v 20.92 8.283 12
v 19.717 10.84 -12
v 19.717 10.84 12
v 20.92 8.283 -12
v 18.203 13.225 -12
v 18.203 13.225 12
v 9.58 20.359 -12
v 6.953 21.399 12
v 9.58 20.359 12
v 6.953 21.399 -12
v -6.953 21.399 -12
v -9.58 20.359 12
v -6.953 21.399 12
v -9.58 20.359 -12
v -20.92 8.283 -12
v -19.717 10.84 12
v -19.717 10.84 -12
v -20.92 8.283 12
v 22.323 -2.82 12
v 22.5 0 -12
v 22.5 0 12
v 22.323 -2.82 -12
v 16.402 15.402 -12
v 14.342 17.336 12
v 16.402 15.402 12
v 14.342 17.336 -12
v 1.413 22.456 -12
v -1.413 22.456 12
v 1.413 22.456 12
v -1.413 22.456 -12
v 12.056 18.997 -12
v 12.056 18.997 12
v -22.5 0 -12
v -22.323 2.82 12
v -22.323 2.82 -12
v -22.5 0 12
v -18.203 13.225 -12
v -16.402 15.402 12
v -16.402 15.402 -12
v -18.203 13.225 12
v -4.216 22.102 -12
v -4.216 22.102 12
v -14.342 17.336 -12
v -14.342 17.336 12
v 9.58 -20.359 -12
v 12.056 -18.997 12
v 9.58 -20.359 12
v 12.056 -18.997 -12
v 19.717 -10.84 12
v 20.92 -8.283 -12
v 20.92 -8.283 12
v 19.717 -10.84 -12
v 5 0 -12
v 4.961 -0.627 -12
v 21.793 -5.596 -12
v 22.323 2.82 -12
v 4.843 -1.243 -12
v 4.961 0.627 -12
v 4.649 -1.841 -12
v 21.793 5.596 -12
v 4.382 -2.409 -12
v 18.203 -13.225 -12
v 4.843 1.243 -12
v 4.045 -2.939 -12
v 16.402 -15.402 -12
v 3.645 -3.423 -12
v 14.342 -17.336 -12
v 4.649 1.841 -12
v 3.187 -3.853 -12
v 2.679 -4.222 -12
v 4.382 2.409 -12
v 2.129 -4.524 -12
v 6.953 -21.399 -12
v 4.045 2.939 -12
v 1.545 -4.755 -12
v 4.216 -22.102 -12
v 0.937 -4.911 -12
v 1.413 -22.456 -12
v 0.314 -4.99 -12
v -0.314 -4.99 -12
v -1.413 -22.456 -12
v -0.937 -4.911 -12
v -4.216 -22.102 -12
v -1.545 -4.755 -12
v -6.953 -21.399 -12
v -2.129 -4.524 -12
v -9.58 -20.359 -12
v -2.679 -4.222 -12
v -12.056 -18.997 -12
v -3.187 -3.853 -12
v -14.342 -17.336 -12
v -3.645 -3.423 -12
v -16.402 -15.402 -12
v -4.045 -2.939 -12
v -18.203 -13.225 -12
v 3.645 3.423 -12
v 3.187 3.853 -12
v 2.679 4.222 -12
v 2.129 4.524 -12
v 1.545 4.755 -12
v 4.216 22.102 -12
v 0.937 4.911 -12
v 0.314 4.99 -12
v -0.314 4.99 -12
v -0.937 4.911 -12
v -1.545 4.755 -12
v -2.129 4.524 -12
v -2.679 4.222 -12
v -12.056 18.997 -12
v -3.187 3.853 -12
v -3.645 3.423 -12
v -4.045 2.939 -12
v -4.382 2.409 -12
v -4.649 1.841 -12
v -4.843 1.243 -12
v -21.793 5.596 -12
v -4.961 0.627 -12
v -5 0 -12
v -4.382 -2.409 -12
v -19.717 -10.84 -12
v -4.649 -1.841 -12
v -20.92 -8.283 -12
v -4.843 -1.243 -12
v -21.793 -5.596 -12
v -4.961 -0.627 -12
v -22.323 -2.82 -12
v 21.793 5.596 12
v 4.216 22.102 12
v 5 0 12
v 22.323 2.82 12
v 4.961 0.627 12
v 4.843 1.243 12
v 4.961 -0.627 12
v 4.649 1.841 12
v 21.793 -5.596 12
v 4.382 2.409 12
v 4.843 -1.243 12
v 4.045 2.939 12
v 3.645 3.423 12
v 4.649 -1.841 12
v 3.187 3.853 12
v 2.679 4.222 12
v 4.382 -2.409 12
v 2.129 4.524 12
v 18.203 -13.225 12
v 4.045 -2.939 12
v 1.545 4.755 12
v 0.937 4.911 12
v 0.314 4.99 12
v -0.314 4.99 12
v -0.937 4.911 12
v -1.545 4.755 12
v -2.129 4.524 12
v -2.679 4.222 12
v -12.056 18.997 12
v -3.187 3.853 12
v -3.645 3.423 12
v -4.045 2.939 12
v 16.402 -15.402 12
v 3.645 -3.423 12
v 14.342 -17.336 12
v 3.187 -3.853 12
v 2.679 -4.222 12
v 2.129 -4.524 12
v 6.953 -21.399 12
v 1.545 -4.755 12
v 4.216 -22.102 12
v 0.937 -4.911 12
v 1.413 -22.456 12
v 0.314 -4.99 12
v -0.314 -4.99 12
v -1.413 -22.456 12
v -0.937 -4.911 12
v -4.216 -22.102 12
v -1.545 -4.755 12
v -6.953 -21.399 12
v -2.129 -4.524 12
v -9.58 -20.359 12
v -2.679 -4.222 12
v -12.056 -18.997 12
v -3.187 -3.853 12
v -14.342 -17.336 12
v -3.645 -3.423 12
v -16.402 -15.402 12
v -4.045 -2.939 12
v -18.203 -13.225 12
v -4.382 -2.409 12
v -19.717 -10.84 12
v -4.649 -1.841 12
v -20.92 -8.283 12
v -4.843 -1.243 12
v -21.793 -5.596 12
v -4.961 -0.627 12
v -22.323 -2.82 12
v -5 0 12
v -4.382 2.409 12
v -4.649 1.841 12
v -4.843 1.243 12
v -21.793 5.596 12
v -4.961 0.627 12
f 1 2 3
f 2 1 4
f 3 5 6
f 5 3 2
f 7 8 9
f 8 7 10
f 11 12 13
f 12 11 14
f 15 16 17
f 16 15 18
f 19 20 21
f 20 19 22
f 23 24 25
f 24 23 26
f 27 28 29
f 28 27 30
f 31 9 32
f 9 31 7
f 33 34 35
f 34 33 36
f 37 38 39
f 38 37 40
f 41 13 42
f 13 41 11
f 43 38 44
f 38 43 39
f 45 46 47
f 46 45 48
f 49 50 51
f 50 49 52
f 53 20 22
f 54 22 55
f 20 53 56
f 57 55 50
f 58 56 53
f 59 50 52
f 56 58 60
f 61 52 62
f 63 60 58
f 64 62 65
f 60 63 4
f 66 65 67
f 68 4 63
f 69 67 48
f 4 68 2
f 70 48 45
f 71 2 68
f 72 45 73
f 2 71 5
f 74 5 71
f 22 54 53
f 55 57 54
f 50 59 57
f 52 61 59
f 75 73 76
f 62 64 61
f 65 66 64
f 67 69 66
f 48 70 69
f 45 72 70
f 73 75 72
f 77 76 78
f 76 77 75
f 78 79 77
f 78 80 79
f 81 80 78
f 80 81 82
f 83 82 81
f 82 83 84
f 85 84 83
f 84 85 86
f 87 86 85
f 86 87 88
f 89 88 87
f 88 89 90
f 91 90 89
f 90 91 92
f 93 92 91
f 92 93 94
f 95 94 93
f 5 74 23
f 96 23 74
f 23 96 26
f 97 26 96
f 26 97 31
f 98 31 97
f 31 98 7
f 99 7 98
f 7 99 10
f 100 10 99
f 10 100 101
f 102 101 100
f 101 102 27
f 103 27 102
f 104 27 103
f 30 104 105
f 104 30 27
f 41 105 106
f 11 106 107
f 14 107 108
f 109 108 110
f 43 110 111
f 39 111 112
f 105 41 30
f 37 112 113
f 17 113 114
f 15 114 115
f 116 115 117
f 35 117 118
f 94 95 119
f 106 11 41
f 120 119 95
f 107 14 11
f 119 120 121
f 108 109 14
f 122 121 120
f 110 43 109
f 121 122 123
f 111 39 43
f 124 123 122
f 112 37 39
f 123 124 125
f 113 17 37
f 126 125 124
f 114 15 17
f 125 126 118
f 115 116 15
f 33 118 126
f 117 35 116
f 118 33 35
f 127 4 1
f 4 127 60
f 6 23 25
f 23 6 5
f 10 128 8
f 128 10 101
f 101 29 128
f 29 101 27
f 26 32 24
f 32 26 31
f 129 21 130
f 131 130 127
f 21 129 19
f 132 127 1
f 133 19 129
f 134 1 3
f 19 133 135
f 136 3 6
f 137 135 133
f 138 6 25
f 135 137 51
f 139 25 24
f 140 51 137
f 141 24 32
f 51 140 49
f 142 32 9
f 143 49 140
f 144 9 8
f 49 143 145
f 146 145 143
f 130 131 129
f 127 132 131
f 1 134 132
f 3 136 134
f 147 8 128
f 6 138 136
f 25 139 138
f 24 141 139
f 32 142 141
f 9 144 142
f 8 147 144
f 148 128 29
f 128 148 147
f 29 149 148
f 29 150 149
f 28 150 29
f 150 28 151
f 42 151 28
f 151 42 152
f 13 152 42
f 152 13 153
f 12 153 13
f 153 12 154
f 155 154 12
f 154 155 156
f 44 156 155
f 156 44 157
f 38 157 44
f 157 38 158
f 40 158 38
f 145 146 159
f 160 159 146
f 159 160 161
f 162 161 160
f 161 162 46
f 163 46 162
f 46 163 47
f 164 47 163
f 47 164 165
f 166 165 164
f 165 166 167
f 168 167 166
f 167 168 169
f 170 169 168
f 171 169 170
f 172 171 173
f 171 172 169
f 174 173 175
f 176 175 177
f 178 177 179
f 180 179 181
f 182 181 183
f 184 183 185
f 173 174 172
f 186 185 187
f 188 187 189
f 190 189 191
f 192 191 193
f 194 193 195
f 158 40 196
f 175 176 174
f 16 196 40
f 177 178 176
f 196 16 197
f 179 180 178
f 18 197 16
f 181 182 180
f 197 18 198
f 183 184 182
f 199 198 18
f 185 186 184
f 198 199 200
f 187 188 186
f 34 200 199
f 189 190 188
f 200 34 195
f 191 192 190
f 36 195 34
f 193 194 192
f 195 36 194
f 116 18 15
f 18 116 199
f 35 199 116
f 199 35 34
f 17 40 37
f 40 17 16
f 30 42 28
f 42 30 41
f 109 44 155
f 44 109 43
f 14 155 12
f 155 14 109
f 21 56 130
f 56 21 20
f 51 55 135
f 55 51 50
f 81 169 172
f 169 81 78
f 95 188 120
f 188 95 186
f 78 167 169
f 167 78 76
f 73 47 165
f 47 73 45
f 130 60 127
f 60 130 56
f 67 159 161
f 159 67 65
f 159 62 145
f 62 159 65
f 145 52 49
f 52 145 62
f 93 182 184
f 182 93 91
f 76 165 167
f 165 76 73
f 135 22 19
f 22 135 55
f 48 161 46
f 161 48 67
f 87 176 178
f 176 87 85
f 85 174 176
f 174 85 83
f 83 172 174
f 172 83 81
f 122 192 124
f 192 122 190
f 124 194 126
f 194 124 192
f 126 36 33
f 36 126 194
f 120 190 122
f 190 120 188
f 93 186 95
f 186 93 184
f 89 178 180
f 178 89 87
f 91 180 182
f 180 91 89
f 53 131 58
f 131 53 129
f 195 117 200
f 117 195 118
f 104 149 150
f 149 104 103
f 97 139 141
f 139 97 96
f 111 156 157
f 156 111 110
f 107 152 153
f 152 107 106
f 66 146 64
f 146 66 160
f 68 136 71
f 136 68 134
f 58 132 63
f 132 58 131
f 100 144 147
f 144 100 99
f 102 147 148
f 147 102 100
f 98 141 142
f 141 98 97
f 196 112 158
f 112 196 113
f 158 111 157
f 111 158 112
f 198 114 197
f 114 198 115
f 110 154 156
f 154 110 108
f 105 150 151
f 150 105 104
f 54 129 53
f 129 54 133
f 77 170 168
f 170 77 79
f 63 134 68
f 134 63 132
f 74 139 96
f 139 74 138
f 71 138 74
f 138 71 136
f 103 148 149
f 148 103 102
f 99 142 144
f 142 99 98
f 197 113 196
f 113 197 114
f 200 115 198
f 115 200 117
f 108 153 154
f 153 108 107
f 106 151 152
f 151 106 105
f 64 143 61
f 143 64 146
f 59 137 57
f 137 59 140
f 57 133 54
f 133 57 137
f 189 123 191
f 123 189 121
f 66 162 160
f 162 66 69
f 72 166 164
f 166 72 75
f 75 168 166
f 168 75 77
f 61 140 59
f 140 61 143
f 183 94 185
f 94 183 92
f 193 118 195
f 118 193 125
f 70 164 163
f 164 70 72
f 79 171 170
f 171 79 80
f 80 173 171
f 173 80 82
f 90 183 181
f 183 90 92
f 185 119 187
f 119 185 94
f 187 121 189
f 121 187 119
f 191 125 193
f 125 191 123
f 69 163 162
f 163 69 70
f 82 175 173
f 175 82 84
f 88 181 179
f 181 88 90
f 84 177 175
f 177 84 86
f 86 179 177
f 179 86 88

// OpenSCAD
$fn = 50;


difference() {
	union() {
		translate(v = [0, 0, -12.0000000000]) {
			cylinder(h = 24, r = 22.5000000000);
		}
	}
	union() {
		translate(v = [0, 0, -100.0000000000]) {
			cylinder(h = 200, r = 5);
		}
	}
}
